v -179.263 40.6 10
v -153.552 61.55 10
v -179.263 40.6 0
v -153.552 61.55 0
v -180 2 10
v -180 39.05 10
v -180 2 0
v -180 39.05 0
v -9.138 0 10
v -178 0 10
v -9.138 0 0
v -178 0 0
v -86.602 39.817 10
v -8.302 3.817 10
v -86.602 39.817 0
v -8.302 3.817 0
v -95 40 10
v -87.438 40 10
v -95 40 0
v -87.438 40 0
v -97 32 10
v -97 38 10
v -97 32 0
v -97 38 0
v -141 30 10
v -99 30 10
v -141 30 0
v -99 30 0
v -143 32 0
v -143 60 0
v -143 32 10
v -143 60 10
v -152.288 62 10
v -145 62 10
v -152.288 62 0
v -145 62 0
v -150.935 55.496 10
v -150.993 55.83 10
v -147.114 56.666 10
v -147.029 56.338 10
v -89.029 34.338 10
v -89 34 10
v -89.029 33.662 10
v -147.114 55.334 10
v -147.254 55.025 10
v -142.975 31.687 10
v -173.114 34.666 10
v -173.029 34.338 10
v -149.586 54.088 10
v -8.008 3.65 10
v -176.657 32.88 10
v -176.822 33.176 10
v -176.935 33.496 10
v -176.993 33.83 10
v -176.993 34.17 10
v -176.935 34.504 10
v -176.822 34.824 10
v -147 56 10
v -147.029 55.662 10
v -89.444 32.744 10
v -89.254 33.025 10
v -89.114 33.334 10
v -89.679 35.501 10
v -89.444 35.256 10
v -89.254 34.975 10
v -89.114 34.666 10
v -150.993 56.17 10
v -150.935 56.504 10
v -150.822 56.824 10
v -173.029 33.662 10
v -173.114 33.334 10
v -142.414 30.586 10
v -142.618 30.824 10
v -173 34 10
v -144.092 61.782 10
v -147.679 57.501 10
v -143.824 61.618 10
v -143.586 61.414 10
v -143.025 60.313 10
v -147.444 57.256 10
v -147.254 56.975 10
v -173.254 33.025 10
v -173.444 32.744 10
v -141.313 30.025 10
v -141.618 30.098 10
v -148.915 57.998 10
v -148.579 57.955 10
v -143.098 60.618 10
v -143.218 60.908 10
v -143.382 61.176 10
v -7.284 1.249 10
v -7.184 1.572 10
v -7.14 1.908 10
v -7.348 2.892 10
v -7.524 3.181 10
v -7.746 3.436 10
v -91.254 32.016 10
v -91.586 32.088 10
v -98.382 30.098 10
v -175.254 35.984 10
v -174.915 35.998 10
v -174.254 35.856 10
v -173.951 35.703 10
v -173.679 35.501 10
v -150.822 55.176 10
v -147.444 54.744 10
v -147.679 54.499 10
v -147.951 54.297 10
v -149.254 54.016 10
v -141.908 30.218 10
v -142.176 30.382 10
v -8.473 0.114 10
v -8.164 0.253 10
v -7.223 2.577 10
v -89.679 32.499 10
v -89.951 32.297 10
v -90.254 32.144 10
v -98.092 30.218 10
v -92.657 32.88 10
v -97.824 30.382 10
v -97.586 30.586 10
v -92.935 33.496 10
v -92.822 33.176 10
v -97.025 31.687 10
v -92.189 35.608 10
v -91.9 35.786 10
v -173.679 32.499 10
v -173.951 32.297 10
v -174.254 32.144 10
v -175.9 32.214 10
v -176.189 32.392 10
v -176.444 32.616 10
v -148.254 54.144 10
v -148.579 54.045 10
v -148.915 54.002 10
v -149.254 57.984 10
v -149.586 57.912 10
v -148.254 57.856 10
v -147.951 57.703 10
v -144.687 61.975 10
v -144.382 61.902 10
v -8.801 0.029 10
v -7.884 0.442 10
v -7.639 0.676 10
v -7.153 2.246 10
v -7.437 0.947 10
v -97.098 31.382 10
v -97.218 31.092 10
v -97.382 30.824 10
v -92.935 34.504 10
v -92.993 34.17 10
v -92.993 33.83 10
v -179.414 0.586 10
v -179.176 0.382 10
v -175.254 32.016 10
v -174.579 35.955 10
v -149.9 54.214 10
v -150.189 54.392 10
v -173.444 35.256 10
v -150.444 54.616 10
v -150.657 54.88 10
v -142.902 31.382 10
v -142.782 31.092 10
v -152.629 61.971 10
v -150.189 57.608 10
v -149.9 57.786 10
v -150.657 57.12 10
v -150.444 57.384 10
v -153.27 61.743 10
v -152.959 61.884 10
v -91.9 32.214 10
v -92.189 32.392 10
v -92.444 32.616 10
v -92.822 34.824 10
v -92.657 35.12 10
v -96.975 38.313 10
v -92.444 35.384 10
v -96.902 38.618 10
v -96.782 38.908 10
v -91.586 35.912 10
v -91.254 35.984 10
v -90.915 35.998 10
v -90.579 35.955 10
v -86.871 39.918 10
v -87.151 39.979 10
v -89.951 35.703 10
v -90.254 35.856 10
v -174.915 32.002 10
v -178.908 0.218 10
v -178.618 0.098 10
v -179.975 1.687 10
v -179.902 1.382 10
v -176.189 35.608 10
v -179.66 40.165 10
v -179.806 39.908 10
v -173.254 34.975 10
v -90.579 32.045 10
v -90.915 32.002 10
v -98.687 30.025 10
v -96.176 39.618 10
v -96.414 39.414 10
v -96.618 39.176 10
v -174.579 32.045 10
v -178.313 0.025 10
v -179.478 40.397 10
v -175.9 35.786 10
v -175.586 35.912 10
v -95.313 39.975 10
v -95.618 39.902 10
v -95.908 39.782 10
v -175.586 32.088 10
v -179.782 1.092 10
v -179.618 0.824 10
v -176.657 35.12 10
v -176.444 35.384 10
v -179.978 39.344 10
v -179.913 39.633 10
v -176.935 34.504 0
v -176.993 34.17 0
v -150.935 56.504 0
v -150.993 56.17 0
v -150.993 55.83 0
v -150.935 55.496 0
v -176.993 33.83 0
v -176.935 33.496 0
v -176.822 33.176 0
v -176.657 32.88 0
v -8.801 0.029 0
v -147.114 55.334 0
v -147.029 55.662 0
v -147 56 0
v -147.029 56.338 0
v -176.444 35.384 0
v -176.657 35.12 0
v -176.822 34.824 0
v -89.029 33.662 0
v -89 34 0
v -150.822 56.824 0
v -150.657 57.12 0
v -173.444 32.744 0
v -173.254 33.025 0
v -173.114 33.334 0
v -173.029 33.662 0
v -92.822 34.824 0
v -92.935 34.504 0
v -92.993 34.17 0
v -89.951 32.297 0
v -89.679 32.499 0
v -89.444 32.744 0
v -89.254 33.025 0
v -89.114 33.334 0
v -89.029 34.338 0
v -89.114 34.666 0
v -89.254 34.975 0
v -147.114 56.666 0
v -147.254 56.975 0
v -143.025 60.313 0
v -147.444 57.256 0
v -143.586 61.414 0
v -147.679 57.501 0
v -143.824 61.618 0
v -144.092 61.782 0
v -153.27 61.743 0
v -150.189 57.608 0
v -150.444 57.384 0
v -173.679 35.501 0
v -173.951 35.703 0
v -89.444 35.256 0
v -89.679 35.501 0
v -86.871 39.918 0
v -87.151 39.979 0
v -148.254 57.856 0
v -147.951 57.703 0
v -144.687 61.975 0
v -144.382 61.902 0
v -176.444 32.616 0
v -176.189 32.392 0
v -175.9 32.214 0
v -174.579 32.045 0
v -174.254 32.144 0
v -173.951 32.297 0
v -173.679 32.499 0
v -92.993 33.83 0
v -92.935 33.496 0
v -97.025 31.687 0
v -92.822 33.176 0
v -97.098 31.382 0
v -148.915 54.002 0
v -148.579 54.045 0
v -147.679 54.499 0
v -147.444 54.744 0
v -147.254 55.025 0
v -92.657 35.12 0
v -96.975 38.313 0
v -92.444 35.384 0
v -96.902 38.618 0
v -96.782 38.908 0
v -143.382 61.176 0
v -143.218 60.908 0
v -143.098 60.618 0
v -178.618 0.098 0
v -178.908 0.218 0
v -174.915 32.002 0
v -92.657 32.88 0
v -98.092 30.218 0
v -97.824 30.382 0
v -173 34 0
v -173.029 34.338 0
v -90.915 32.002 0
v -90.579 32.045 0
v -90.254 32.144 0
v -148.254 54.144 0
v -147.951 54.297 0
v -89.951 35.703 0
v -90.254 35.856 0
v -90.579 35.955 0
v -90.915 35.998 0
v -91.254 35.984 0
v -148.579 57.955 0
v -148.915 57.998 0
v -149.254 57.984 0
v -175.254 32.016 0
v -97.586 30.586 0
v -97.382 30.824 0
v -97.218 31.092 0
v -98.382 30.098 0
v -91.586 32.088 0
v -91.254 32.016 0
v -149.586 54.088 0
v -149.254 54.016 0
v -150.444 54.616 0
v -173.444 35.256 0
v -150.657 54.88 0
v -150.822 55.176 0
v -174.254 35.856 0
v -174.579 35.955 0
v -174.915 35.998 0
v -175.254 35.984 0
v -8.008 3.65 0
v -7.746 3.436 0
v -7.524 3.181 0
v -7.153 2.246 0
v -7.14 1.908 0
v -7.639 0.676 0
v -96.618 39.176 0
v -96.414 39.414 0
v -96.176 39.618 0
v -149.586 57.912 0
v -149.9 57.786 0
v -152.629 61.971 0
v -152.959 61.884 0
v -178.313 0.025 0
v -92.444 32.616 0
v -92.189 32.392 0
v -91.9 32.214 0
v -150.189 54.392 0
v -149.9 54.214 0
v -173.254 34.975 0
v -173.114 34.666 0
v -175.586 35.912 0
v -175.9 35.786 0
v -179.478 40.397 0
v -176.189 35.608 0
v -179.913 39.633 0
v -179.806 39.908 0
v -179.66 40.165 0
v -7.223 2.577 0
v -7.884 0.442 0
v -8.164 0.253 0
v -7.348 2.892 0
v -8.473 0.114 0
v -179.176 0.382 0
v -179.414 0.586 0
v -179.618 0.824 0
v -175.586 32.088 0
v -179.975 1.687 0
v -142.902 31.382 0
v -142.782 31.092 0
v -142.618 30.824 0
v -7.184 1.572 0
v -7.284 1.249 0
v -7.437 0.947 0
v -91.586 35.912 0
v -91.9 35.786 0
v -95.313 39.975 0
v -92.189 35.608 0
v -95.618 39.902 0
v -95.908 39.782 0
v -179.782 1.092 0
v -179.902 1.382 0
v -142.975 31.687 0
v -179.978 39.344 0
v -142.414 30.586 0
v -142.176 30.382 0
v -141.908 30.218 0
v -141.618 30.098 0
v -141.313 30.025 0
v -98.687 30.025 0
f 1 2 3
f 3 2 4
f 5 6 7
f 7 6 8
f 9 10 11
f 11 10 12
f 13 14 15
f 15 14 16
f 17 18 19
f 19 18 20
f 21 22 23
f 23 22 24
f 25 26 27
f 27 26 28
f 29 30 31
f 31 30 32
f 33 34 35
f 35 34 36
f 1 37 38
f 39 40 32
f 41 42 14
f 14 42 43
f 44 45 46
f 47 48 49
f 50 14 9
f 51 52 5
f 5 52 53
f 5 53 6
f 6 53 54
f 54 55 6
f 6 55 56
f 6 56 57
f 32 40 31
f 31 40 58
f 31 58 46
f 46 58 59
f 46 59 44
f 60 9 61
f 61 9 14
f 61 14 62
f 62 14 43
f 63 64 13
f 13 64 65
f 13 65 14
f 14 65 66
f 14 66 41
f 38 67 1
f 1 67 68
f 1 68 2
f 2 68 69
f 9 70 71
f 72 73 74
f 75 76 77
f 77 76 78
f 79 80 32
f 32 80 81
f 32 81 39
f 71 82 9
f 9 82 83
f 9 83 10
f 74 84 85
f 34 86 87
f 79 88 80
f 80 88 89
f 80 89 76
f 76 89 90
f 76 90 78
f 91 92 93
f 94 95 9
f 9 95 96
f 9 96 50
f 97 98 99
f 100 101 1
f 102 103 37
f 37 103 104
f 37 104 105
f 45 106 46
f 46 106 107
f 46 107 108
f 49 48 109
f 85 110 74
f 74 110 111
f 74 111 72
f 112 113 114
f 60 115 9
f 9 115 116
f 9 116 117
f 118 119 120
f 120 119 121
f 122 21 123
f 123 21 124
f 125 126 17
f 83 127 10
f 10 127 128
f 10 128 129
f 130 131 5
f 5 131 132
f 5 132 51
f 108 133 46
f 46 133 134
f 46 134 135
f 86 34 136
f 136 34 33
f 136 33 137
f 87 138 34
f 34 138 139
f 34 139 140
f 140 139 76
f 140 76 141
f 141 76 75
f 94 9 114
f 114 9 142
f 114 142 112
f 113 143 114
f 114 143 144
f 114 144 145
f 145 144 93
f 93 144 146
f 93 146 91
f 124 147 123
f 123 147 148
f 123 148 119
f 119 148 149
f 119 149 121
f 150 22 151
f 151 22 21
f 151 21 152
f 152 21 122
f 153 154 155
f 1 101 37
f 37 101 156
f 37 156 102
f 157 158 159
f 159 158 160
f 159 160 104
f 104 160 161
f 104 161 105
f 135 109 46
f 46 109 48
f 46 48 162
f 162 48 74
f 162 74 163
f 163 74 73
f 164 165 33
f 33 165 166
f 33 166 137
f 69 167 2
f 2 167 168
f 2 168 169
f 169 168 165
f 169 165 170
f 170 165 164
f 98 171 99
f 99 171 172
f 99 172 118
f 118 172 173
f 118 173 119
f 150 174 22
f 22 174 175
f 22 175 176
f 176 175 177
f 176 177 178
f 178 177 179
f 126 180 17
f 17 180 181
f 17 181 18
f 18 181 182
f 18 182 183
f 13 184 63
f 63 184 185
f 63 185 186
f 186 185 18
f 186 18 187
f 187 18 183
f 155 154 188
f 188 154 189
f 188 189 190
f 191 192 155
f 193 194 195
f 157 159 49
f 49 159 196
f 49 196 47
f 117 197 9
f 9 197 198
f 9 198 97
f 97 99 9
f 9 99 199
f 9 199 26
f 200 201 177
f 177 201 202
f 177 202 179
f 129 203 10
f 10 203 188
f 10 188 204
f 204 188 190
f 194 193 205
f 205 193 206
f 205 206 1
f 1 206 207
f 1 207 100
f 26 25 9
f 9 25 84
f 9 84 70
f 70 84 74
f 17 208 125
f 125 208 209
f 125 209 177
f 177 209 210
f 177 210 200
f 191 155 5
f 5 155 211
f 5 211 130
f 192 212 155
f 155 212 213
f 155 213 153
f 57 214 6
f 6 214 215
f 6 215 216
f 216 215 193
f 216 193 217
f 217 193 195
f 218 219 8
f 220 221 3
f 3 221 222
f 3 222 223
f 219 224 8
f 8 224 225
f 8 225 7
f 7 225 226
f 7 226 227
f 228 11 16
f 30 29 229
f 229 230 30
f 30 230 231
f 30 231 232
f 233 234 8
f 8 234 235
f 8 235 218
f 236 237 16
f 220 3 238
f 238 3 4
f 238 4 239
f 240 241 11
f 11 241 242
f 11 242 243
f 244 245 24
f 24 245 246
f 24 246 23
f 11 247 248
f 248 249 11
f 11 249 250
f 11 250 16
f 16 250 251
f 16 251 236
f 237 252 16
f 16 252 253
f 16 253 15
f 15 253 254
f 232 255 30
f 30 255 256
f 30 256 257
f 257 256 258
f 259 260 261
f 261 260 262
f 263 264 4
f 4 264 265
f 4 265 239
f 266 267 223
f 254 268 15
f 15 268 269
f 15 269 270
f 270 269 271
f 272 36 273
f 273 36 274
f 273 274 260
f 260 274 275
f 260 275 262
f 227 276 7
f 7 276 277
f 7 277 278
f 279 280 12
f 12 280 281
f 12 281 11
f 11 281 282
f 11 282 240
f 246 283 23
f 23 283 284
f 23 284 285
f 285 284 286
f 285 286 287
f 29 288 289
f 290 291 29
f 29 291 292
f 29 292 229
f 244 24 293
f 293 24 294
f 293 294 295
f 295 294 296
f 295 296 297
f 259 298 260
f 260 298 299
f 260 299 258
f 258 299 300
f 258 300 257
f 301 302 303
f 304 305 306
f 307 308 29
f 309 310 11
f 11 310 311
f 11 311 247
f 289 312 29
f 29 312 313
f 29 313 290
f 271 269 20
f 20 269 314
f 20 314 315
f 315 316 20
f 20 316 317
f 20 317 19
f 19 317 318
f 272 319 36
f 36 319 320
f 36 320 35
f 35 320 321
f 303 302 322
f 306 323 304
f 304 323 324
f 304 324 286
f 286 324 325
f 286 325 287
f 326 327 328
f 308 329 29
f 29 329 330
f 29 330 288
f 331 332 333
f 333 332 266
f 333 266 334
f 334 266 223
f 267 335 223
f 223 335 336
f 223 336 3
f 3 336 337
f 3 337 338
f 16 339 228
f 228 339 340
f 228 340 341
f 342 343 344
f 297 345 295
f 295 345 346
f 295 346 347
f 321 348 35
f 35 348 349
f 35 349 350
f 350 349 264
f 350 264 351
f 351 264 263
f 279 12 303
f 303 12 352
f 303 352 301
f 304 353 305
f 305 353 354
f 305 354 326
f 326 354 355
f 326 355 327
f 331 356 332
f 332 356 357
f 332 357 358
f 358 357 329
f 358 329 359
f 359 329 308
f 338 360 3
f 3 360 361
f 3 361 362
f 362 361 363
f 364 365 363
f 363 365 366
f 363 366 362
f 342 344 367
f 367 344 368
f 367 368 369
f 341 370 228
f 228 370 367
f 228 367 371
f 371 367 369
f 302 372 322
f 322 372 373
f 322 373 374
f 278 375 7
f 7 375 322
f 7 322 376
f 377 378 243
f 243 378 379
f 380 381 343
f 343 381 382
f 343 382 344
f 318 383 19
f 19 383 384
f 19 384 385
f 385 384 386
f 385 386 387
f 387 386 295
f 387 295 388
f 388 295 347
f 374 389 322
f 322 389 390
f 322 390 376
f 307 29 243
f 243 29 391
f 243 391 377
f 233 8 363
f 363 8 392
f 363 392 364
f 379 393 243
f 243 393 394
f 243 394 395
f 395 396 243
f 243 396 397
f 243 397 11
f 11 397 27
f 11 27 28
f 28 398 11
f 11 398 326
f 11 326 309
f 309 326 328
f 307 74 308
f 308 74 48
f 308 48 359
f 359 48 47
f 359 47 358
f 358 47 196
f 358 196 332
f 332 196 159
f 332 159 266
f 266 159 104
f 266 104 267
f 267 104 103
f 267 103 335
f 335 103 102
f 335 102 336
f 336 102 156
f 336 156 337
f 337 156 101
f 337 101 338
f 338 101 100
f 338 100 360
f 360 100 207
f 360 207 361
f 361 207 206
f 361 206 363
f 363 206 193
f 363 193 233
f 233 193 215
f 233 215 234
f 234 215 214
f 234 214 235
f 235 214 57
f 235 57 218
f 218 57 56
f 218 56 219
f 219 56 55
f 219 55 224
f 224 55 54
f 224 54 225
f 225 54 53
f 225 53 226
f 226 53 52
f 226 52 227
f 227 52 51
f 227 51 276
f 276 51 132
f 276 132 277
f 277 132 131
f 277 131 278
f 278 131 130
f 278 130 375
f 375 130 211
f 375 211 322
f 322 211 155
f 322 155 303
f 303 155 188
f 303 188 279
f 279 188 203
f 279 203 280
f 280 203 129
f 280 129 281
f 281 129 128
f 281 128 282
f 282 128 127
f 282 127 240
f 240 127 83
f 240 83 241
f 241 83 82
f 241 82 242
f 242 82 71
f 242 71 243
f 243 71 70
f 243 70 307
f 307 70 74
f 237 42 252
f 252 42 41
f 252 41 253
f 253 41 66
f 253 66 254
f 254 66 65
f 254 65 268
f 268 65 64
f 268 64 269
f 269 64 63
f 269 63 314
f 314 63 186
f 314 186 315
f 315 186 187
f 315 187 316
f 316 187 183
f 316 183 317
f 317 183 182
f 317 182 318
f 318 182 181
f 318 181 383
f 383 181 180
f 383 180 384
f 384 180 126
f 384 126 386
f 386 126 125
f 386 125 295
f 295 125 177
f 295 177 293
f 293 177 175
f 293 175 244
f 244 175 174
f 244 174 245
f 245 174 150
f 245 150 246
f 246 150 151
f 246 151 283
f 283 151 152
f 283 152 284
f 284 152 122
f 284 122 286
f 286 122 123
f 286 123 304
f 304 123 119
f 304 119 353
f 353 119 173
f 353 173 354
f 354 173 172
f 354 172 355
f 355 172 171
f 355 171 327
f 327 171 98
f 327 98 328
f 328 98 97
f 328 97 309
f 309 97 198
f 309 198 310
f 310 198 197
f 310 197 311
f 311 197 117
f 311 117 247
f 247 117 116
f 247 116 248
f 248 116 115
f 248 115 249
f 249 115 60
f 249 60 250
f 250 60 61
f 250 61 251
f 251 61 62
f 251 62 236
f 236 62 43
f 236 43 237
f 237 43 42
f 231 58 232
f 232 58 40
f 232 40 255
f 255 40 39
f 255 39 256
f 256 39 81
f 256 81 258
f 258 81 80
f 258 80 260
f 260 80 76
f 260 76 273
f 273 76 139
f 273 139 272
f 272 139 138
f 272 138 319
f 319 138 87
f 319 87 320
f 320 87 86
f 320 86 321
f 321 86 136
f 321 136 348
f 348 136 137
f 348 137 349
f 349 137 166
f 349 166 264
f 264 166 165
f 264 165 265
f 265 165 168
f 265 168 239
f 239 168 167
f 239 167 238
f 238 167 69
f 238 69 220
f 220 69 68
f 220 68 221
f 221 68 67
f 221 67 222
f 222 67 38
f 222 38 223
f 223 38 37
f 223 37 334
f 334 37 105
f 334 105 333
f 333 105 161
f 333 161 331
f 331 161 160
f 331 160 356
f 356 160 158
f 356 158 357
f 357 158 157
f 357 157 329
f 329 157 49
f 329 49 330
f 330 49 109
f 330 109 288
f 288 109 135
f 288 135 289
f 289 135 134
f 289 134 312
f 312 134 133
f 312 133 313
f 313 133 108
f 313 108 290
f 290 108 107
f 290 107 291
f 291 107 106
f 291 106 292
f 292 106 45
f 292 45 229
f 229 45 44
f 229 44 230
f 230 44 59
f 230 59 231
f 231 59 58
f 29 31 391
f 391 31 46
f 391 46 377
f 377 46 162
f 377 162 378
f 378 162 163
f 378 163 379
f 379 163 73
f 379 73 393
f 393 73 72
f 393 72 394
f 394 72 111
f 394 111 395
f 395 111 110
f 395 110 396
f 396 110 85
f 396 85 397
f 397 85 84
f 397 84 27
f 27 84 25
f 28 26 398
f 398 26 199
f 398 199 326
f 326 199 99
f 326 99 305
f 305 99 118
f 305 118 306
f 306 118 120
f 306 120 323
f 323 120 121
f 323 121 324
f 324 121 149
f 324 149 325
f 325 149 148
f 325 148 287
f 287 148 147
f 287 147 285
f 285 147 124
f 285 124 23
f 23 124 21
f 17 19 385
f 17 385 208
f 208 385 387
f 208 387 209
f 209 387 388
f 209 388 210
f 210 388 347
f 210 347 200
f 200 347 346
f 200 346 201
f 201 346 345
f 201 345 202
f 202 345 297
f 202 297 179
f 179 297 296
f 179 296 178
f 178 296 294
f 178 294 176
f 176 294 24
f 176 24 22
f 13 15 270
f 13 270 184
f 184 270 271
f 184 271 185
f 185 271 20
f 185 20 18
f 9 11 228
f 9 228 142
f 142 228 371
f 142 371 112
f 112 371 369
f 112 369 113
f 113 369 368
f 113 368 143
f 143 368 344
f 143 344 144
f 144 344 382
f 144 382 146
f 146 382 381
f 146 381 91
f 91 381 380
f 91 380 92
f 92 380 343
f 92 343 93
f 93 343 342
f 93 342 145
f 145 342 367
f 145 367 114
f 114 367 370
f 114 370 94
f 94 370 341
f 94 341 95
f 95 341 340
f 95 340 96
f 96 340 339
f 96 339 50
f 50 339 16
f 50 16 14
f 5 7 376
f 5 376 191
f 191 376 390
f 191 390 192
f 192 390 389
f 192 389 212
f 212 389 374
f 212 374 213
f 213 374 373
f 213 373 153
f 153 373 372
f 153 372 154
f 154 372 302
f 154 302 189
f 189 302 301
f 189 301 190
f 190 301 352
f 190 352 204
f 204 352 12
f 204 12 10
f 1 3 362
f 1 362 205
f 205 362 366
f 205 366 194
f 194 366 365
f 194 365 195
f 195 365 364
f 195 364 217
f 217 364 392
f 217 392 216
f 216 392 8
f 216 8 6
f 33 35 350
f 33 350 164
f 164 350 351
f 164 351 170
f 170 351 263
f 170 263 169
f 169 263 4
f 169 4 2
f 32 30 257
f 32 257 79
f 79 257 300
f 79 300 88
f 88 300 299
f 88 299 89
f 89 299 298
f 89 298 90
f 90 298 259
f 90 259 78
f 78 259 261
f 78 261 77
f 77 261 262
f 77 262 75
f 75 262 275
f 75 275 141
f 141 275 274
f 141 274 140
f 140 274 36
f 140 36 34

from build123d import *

# Parameters (mm, degrees)
BOSS_EXTRUDE1_DEPTH      = 10
F_4_0_4_DIAMETER_HOLE1_D = 4
FILLET2_R                = 2


with BuildPart() as part:
    # Sketch1 → Boss-Extrude1 (new body)
    with BuildSketch(Plane.XY):
        Polygon((-87, 40), (0, 0), (-180, 0), (-180, 40), (-153, 62), (-143, 62), (-143, 30), (-97, 30), (-97, 40), align=None)
    extrude(amount=BOSS_EXTRUDE1_DEPTH)

    # Ø4.0 (4) Diameter Hole1 (through all)
    with Locations(Plane.XY.offset(10)):
        with Locations((-149, 56), (-91, 34), (-175, 34)):
            Hole(F_4_0_4_DIAMETER_HOLE1_D / 2)

    # Fillet2
    fillet2_edges = [part.edges().sort_by_distance(p)[0] for p in [
        (-153, 62, 5),
        (-143, 62, 5),
        (-143, 30, 5),
        (-97, 30, 5),
        (-97, 40, 5),
        (-87, 40, 5),
        (0, 0, 5),
        (-180, 0, 5),
        (-180, 40, 5),
    ]]
    fillet(fillet2_edges, radius=FILLET2_R)


solid = part.part
